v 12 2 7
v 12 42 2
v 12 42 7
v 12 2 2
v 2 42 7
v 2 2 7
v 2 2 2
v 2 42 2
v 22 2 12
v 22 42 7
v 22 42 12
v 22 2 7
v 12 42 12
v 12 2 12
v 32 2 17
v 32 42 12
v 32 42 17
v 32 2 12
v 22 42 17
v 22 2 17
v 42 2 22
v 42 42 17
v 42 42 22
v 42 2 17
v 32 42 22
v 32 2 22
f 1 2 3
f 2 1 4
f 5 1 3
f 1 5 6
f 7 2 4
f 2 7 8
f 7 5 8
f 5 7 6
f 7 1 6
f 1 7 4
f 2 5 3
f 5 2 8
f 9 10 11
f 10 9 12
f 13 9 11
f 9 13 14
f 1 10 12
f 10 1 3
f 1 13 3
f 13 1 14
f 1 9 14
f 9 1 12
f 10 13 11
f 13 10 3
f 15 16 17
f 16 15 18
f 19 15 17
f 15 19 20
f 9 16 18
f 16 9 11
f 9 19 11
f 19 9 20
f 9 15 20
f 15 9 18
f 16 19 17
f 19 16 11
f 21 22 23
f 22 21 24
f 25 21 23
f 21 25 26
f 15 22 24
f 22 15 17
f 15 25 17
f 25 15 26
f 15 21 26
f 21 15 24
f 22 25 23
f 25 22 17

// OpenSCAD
module nested_boxes(width, height, depth, box_width, box_height, box_depth) {
  for (i = [0:3]) {
    for (j = [0:3]) {
      translate([box_width + (i * width), box_width + (j * height), box_depth + (i * depth)]) {
        cube([width, height, depth]);
      }
    }
  }
}

nested_boxes(10, 10, 5, 2, 2, 2);
